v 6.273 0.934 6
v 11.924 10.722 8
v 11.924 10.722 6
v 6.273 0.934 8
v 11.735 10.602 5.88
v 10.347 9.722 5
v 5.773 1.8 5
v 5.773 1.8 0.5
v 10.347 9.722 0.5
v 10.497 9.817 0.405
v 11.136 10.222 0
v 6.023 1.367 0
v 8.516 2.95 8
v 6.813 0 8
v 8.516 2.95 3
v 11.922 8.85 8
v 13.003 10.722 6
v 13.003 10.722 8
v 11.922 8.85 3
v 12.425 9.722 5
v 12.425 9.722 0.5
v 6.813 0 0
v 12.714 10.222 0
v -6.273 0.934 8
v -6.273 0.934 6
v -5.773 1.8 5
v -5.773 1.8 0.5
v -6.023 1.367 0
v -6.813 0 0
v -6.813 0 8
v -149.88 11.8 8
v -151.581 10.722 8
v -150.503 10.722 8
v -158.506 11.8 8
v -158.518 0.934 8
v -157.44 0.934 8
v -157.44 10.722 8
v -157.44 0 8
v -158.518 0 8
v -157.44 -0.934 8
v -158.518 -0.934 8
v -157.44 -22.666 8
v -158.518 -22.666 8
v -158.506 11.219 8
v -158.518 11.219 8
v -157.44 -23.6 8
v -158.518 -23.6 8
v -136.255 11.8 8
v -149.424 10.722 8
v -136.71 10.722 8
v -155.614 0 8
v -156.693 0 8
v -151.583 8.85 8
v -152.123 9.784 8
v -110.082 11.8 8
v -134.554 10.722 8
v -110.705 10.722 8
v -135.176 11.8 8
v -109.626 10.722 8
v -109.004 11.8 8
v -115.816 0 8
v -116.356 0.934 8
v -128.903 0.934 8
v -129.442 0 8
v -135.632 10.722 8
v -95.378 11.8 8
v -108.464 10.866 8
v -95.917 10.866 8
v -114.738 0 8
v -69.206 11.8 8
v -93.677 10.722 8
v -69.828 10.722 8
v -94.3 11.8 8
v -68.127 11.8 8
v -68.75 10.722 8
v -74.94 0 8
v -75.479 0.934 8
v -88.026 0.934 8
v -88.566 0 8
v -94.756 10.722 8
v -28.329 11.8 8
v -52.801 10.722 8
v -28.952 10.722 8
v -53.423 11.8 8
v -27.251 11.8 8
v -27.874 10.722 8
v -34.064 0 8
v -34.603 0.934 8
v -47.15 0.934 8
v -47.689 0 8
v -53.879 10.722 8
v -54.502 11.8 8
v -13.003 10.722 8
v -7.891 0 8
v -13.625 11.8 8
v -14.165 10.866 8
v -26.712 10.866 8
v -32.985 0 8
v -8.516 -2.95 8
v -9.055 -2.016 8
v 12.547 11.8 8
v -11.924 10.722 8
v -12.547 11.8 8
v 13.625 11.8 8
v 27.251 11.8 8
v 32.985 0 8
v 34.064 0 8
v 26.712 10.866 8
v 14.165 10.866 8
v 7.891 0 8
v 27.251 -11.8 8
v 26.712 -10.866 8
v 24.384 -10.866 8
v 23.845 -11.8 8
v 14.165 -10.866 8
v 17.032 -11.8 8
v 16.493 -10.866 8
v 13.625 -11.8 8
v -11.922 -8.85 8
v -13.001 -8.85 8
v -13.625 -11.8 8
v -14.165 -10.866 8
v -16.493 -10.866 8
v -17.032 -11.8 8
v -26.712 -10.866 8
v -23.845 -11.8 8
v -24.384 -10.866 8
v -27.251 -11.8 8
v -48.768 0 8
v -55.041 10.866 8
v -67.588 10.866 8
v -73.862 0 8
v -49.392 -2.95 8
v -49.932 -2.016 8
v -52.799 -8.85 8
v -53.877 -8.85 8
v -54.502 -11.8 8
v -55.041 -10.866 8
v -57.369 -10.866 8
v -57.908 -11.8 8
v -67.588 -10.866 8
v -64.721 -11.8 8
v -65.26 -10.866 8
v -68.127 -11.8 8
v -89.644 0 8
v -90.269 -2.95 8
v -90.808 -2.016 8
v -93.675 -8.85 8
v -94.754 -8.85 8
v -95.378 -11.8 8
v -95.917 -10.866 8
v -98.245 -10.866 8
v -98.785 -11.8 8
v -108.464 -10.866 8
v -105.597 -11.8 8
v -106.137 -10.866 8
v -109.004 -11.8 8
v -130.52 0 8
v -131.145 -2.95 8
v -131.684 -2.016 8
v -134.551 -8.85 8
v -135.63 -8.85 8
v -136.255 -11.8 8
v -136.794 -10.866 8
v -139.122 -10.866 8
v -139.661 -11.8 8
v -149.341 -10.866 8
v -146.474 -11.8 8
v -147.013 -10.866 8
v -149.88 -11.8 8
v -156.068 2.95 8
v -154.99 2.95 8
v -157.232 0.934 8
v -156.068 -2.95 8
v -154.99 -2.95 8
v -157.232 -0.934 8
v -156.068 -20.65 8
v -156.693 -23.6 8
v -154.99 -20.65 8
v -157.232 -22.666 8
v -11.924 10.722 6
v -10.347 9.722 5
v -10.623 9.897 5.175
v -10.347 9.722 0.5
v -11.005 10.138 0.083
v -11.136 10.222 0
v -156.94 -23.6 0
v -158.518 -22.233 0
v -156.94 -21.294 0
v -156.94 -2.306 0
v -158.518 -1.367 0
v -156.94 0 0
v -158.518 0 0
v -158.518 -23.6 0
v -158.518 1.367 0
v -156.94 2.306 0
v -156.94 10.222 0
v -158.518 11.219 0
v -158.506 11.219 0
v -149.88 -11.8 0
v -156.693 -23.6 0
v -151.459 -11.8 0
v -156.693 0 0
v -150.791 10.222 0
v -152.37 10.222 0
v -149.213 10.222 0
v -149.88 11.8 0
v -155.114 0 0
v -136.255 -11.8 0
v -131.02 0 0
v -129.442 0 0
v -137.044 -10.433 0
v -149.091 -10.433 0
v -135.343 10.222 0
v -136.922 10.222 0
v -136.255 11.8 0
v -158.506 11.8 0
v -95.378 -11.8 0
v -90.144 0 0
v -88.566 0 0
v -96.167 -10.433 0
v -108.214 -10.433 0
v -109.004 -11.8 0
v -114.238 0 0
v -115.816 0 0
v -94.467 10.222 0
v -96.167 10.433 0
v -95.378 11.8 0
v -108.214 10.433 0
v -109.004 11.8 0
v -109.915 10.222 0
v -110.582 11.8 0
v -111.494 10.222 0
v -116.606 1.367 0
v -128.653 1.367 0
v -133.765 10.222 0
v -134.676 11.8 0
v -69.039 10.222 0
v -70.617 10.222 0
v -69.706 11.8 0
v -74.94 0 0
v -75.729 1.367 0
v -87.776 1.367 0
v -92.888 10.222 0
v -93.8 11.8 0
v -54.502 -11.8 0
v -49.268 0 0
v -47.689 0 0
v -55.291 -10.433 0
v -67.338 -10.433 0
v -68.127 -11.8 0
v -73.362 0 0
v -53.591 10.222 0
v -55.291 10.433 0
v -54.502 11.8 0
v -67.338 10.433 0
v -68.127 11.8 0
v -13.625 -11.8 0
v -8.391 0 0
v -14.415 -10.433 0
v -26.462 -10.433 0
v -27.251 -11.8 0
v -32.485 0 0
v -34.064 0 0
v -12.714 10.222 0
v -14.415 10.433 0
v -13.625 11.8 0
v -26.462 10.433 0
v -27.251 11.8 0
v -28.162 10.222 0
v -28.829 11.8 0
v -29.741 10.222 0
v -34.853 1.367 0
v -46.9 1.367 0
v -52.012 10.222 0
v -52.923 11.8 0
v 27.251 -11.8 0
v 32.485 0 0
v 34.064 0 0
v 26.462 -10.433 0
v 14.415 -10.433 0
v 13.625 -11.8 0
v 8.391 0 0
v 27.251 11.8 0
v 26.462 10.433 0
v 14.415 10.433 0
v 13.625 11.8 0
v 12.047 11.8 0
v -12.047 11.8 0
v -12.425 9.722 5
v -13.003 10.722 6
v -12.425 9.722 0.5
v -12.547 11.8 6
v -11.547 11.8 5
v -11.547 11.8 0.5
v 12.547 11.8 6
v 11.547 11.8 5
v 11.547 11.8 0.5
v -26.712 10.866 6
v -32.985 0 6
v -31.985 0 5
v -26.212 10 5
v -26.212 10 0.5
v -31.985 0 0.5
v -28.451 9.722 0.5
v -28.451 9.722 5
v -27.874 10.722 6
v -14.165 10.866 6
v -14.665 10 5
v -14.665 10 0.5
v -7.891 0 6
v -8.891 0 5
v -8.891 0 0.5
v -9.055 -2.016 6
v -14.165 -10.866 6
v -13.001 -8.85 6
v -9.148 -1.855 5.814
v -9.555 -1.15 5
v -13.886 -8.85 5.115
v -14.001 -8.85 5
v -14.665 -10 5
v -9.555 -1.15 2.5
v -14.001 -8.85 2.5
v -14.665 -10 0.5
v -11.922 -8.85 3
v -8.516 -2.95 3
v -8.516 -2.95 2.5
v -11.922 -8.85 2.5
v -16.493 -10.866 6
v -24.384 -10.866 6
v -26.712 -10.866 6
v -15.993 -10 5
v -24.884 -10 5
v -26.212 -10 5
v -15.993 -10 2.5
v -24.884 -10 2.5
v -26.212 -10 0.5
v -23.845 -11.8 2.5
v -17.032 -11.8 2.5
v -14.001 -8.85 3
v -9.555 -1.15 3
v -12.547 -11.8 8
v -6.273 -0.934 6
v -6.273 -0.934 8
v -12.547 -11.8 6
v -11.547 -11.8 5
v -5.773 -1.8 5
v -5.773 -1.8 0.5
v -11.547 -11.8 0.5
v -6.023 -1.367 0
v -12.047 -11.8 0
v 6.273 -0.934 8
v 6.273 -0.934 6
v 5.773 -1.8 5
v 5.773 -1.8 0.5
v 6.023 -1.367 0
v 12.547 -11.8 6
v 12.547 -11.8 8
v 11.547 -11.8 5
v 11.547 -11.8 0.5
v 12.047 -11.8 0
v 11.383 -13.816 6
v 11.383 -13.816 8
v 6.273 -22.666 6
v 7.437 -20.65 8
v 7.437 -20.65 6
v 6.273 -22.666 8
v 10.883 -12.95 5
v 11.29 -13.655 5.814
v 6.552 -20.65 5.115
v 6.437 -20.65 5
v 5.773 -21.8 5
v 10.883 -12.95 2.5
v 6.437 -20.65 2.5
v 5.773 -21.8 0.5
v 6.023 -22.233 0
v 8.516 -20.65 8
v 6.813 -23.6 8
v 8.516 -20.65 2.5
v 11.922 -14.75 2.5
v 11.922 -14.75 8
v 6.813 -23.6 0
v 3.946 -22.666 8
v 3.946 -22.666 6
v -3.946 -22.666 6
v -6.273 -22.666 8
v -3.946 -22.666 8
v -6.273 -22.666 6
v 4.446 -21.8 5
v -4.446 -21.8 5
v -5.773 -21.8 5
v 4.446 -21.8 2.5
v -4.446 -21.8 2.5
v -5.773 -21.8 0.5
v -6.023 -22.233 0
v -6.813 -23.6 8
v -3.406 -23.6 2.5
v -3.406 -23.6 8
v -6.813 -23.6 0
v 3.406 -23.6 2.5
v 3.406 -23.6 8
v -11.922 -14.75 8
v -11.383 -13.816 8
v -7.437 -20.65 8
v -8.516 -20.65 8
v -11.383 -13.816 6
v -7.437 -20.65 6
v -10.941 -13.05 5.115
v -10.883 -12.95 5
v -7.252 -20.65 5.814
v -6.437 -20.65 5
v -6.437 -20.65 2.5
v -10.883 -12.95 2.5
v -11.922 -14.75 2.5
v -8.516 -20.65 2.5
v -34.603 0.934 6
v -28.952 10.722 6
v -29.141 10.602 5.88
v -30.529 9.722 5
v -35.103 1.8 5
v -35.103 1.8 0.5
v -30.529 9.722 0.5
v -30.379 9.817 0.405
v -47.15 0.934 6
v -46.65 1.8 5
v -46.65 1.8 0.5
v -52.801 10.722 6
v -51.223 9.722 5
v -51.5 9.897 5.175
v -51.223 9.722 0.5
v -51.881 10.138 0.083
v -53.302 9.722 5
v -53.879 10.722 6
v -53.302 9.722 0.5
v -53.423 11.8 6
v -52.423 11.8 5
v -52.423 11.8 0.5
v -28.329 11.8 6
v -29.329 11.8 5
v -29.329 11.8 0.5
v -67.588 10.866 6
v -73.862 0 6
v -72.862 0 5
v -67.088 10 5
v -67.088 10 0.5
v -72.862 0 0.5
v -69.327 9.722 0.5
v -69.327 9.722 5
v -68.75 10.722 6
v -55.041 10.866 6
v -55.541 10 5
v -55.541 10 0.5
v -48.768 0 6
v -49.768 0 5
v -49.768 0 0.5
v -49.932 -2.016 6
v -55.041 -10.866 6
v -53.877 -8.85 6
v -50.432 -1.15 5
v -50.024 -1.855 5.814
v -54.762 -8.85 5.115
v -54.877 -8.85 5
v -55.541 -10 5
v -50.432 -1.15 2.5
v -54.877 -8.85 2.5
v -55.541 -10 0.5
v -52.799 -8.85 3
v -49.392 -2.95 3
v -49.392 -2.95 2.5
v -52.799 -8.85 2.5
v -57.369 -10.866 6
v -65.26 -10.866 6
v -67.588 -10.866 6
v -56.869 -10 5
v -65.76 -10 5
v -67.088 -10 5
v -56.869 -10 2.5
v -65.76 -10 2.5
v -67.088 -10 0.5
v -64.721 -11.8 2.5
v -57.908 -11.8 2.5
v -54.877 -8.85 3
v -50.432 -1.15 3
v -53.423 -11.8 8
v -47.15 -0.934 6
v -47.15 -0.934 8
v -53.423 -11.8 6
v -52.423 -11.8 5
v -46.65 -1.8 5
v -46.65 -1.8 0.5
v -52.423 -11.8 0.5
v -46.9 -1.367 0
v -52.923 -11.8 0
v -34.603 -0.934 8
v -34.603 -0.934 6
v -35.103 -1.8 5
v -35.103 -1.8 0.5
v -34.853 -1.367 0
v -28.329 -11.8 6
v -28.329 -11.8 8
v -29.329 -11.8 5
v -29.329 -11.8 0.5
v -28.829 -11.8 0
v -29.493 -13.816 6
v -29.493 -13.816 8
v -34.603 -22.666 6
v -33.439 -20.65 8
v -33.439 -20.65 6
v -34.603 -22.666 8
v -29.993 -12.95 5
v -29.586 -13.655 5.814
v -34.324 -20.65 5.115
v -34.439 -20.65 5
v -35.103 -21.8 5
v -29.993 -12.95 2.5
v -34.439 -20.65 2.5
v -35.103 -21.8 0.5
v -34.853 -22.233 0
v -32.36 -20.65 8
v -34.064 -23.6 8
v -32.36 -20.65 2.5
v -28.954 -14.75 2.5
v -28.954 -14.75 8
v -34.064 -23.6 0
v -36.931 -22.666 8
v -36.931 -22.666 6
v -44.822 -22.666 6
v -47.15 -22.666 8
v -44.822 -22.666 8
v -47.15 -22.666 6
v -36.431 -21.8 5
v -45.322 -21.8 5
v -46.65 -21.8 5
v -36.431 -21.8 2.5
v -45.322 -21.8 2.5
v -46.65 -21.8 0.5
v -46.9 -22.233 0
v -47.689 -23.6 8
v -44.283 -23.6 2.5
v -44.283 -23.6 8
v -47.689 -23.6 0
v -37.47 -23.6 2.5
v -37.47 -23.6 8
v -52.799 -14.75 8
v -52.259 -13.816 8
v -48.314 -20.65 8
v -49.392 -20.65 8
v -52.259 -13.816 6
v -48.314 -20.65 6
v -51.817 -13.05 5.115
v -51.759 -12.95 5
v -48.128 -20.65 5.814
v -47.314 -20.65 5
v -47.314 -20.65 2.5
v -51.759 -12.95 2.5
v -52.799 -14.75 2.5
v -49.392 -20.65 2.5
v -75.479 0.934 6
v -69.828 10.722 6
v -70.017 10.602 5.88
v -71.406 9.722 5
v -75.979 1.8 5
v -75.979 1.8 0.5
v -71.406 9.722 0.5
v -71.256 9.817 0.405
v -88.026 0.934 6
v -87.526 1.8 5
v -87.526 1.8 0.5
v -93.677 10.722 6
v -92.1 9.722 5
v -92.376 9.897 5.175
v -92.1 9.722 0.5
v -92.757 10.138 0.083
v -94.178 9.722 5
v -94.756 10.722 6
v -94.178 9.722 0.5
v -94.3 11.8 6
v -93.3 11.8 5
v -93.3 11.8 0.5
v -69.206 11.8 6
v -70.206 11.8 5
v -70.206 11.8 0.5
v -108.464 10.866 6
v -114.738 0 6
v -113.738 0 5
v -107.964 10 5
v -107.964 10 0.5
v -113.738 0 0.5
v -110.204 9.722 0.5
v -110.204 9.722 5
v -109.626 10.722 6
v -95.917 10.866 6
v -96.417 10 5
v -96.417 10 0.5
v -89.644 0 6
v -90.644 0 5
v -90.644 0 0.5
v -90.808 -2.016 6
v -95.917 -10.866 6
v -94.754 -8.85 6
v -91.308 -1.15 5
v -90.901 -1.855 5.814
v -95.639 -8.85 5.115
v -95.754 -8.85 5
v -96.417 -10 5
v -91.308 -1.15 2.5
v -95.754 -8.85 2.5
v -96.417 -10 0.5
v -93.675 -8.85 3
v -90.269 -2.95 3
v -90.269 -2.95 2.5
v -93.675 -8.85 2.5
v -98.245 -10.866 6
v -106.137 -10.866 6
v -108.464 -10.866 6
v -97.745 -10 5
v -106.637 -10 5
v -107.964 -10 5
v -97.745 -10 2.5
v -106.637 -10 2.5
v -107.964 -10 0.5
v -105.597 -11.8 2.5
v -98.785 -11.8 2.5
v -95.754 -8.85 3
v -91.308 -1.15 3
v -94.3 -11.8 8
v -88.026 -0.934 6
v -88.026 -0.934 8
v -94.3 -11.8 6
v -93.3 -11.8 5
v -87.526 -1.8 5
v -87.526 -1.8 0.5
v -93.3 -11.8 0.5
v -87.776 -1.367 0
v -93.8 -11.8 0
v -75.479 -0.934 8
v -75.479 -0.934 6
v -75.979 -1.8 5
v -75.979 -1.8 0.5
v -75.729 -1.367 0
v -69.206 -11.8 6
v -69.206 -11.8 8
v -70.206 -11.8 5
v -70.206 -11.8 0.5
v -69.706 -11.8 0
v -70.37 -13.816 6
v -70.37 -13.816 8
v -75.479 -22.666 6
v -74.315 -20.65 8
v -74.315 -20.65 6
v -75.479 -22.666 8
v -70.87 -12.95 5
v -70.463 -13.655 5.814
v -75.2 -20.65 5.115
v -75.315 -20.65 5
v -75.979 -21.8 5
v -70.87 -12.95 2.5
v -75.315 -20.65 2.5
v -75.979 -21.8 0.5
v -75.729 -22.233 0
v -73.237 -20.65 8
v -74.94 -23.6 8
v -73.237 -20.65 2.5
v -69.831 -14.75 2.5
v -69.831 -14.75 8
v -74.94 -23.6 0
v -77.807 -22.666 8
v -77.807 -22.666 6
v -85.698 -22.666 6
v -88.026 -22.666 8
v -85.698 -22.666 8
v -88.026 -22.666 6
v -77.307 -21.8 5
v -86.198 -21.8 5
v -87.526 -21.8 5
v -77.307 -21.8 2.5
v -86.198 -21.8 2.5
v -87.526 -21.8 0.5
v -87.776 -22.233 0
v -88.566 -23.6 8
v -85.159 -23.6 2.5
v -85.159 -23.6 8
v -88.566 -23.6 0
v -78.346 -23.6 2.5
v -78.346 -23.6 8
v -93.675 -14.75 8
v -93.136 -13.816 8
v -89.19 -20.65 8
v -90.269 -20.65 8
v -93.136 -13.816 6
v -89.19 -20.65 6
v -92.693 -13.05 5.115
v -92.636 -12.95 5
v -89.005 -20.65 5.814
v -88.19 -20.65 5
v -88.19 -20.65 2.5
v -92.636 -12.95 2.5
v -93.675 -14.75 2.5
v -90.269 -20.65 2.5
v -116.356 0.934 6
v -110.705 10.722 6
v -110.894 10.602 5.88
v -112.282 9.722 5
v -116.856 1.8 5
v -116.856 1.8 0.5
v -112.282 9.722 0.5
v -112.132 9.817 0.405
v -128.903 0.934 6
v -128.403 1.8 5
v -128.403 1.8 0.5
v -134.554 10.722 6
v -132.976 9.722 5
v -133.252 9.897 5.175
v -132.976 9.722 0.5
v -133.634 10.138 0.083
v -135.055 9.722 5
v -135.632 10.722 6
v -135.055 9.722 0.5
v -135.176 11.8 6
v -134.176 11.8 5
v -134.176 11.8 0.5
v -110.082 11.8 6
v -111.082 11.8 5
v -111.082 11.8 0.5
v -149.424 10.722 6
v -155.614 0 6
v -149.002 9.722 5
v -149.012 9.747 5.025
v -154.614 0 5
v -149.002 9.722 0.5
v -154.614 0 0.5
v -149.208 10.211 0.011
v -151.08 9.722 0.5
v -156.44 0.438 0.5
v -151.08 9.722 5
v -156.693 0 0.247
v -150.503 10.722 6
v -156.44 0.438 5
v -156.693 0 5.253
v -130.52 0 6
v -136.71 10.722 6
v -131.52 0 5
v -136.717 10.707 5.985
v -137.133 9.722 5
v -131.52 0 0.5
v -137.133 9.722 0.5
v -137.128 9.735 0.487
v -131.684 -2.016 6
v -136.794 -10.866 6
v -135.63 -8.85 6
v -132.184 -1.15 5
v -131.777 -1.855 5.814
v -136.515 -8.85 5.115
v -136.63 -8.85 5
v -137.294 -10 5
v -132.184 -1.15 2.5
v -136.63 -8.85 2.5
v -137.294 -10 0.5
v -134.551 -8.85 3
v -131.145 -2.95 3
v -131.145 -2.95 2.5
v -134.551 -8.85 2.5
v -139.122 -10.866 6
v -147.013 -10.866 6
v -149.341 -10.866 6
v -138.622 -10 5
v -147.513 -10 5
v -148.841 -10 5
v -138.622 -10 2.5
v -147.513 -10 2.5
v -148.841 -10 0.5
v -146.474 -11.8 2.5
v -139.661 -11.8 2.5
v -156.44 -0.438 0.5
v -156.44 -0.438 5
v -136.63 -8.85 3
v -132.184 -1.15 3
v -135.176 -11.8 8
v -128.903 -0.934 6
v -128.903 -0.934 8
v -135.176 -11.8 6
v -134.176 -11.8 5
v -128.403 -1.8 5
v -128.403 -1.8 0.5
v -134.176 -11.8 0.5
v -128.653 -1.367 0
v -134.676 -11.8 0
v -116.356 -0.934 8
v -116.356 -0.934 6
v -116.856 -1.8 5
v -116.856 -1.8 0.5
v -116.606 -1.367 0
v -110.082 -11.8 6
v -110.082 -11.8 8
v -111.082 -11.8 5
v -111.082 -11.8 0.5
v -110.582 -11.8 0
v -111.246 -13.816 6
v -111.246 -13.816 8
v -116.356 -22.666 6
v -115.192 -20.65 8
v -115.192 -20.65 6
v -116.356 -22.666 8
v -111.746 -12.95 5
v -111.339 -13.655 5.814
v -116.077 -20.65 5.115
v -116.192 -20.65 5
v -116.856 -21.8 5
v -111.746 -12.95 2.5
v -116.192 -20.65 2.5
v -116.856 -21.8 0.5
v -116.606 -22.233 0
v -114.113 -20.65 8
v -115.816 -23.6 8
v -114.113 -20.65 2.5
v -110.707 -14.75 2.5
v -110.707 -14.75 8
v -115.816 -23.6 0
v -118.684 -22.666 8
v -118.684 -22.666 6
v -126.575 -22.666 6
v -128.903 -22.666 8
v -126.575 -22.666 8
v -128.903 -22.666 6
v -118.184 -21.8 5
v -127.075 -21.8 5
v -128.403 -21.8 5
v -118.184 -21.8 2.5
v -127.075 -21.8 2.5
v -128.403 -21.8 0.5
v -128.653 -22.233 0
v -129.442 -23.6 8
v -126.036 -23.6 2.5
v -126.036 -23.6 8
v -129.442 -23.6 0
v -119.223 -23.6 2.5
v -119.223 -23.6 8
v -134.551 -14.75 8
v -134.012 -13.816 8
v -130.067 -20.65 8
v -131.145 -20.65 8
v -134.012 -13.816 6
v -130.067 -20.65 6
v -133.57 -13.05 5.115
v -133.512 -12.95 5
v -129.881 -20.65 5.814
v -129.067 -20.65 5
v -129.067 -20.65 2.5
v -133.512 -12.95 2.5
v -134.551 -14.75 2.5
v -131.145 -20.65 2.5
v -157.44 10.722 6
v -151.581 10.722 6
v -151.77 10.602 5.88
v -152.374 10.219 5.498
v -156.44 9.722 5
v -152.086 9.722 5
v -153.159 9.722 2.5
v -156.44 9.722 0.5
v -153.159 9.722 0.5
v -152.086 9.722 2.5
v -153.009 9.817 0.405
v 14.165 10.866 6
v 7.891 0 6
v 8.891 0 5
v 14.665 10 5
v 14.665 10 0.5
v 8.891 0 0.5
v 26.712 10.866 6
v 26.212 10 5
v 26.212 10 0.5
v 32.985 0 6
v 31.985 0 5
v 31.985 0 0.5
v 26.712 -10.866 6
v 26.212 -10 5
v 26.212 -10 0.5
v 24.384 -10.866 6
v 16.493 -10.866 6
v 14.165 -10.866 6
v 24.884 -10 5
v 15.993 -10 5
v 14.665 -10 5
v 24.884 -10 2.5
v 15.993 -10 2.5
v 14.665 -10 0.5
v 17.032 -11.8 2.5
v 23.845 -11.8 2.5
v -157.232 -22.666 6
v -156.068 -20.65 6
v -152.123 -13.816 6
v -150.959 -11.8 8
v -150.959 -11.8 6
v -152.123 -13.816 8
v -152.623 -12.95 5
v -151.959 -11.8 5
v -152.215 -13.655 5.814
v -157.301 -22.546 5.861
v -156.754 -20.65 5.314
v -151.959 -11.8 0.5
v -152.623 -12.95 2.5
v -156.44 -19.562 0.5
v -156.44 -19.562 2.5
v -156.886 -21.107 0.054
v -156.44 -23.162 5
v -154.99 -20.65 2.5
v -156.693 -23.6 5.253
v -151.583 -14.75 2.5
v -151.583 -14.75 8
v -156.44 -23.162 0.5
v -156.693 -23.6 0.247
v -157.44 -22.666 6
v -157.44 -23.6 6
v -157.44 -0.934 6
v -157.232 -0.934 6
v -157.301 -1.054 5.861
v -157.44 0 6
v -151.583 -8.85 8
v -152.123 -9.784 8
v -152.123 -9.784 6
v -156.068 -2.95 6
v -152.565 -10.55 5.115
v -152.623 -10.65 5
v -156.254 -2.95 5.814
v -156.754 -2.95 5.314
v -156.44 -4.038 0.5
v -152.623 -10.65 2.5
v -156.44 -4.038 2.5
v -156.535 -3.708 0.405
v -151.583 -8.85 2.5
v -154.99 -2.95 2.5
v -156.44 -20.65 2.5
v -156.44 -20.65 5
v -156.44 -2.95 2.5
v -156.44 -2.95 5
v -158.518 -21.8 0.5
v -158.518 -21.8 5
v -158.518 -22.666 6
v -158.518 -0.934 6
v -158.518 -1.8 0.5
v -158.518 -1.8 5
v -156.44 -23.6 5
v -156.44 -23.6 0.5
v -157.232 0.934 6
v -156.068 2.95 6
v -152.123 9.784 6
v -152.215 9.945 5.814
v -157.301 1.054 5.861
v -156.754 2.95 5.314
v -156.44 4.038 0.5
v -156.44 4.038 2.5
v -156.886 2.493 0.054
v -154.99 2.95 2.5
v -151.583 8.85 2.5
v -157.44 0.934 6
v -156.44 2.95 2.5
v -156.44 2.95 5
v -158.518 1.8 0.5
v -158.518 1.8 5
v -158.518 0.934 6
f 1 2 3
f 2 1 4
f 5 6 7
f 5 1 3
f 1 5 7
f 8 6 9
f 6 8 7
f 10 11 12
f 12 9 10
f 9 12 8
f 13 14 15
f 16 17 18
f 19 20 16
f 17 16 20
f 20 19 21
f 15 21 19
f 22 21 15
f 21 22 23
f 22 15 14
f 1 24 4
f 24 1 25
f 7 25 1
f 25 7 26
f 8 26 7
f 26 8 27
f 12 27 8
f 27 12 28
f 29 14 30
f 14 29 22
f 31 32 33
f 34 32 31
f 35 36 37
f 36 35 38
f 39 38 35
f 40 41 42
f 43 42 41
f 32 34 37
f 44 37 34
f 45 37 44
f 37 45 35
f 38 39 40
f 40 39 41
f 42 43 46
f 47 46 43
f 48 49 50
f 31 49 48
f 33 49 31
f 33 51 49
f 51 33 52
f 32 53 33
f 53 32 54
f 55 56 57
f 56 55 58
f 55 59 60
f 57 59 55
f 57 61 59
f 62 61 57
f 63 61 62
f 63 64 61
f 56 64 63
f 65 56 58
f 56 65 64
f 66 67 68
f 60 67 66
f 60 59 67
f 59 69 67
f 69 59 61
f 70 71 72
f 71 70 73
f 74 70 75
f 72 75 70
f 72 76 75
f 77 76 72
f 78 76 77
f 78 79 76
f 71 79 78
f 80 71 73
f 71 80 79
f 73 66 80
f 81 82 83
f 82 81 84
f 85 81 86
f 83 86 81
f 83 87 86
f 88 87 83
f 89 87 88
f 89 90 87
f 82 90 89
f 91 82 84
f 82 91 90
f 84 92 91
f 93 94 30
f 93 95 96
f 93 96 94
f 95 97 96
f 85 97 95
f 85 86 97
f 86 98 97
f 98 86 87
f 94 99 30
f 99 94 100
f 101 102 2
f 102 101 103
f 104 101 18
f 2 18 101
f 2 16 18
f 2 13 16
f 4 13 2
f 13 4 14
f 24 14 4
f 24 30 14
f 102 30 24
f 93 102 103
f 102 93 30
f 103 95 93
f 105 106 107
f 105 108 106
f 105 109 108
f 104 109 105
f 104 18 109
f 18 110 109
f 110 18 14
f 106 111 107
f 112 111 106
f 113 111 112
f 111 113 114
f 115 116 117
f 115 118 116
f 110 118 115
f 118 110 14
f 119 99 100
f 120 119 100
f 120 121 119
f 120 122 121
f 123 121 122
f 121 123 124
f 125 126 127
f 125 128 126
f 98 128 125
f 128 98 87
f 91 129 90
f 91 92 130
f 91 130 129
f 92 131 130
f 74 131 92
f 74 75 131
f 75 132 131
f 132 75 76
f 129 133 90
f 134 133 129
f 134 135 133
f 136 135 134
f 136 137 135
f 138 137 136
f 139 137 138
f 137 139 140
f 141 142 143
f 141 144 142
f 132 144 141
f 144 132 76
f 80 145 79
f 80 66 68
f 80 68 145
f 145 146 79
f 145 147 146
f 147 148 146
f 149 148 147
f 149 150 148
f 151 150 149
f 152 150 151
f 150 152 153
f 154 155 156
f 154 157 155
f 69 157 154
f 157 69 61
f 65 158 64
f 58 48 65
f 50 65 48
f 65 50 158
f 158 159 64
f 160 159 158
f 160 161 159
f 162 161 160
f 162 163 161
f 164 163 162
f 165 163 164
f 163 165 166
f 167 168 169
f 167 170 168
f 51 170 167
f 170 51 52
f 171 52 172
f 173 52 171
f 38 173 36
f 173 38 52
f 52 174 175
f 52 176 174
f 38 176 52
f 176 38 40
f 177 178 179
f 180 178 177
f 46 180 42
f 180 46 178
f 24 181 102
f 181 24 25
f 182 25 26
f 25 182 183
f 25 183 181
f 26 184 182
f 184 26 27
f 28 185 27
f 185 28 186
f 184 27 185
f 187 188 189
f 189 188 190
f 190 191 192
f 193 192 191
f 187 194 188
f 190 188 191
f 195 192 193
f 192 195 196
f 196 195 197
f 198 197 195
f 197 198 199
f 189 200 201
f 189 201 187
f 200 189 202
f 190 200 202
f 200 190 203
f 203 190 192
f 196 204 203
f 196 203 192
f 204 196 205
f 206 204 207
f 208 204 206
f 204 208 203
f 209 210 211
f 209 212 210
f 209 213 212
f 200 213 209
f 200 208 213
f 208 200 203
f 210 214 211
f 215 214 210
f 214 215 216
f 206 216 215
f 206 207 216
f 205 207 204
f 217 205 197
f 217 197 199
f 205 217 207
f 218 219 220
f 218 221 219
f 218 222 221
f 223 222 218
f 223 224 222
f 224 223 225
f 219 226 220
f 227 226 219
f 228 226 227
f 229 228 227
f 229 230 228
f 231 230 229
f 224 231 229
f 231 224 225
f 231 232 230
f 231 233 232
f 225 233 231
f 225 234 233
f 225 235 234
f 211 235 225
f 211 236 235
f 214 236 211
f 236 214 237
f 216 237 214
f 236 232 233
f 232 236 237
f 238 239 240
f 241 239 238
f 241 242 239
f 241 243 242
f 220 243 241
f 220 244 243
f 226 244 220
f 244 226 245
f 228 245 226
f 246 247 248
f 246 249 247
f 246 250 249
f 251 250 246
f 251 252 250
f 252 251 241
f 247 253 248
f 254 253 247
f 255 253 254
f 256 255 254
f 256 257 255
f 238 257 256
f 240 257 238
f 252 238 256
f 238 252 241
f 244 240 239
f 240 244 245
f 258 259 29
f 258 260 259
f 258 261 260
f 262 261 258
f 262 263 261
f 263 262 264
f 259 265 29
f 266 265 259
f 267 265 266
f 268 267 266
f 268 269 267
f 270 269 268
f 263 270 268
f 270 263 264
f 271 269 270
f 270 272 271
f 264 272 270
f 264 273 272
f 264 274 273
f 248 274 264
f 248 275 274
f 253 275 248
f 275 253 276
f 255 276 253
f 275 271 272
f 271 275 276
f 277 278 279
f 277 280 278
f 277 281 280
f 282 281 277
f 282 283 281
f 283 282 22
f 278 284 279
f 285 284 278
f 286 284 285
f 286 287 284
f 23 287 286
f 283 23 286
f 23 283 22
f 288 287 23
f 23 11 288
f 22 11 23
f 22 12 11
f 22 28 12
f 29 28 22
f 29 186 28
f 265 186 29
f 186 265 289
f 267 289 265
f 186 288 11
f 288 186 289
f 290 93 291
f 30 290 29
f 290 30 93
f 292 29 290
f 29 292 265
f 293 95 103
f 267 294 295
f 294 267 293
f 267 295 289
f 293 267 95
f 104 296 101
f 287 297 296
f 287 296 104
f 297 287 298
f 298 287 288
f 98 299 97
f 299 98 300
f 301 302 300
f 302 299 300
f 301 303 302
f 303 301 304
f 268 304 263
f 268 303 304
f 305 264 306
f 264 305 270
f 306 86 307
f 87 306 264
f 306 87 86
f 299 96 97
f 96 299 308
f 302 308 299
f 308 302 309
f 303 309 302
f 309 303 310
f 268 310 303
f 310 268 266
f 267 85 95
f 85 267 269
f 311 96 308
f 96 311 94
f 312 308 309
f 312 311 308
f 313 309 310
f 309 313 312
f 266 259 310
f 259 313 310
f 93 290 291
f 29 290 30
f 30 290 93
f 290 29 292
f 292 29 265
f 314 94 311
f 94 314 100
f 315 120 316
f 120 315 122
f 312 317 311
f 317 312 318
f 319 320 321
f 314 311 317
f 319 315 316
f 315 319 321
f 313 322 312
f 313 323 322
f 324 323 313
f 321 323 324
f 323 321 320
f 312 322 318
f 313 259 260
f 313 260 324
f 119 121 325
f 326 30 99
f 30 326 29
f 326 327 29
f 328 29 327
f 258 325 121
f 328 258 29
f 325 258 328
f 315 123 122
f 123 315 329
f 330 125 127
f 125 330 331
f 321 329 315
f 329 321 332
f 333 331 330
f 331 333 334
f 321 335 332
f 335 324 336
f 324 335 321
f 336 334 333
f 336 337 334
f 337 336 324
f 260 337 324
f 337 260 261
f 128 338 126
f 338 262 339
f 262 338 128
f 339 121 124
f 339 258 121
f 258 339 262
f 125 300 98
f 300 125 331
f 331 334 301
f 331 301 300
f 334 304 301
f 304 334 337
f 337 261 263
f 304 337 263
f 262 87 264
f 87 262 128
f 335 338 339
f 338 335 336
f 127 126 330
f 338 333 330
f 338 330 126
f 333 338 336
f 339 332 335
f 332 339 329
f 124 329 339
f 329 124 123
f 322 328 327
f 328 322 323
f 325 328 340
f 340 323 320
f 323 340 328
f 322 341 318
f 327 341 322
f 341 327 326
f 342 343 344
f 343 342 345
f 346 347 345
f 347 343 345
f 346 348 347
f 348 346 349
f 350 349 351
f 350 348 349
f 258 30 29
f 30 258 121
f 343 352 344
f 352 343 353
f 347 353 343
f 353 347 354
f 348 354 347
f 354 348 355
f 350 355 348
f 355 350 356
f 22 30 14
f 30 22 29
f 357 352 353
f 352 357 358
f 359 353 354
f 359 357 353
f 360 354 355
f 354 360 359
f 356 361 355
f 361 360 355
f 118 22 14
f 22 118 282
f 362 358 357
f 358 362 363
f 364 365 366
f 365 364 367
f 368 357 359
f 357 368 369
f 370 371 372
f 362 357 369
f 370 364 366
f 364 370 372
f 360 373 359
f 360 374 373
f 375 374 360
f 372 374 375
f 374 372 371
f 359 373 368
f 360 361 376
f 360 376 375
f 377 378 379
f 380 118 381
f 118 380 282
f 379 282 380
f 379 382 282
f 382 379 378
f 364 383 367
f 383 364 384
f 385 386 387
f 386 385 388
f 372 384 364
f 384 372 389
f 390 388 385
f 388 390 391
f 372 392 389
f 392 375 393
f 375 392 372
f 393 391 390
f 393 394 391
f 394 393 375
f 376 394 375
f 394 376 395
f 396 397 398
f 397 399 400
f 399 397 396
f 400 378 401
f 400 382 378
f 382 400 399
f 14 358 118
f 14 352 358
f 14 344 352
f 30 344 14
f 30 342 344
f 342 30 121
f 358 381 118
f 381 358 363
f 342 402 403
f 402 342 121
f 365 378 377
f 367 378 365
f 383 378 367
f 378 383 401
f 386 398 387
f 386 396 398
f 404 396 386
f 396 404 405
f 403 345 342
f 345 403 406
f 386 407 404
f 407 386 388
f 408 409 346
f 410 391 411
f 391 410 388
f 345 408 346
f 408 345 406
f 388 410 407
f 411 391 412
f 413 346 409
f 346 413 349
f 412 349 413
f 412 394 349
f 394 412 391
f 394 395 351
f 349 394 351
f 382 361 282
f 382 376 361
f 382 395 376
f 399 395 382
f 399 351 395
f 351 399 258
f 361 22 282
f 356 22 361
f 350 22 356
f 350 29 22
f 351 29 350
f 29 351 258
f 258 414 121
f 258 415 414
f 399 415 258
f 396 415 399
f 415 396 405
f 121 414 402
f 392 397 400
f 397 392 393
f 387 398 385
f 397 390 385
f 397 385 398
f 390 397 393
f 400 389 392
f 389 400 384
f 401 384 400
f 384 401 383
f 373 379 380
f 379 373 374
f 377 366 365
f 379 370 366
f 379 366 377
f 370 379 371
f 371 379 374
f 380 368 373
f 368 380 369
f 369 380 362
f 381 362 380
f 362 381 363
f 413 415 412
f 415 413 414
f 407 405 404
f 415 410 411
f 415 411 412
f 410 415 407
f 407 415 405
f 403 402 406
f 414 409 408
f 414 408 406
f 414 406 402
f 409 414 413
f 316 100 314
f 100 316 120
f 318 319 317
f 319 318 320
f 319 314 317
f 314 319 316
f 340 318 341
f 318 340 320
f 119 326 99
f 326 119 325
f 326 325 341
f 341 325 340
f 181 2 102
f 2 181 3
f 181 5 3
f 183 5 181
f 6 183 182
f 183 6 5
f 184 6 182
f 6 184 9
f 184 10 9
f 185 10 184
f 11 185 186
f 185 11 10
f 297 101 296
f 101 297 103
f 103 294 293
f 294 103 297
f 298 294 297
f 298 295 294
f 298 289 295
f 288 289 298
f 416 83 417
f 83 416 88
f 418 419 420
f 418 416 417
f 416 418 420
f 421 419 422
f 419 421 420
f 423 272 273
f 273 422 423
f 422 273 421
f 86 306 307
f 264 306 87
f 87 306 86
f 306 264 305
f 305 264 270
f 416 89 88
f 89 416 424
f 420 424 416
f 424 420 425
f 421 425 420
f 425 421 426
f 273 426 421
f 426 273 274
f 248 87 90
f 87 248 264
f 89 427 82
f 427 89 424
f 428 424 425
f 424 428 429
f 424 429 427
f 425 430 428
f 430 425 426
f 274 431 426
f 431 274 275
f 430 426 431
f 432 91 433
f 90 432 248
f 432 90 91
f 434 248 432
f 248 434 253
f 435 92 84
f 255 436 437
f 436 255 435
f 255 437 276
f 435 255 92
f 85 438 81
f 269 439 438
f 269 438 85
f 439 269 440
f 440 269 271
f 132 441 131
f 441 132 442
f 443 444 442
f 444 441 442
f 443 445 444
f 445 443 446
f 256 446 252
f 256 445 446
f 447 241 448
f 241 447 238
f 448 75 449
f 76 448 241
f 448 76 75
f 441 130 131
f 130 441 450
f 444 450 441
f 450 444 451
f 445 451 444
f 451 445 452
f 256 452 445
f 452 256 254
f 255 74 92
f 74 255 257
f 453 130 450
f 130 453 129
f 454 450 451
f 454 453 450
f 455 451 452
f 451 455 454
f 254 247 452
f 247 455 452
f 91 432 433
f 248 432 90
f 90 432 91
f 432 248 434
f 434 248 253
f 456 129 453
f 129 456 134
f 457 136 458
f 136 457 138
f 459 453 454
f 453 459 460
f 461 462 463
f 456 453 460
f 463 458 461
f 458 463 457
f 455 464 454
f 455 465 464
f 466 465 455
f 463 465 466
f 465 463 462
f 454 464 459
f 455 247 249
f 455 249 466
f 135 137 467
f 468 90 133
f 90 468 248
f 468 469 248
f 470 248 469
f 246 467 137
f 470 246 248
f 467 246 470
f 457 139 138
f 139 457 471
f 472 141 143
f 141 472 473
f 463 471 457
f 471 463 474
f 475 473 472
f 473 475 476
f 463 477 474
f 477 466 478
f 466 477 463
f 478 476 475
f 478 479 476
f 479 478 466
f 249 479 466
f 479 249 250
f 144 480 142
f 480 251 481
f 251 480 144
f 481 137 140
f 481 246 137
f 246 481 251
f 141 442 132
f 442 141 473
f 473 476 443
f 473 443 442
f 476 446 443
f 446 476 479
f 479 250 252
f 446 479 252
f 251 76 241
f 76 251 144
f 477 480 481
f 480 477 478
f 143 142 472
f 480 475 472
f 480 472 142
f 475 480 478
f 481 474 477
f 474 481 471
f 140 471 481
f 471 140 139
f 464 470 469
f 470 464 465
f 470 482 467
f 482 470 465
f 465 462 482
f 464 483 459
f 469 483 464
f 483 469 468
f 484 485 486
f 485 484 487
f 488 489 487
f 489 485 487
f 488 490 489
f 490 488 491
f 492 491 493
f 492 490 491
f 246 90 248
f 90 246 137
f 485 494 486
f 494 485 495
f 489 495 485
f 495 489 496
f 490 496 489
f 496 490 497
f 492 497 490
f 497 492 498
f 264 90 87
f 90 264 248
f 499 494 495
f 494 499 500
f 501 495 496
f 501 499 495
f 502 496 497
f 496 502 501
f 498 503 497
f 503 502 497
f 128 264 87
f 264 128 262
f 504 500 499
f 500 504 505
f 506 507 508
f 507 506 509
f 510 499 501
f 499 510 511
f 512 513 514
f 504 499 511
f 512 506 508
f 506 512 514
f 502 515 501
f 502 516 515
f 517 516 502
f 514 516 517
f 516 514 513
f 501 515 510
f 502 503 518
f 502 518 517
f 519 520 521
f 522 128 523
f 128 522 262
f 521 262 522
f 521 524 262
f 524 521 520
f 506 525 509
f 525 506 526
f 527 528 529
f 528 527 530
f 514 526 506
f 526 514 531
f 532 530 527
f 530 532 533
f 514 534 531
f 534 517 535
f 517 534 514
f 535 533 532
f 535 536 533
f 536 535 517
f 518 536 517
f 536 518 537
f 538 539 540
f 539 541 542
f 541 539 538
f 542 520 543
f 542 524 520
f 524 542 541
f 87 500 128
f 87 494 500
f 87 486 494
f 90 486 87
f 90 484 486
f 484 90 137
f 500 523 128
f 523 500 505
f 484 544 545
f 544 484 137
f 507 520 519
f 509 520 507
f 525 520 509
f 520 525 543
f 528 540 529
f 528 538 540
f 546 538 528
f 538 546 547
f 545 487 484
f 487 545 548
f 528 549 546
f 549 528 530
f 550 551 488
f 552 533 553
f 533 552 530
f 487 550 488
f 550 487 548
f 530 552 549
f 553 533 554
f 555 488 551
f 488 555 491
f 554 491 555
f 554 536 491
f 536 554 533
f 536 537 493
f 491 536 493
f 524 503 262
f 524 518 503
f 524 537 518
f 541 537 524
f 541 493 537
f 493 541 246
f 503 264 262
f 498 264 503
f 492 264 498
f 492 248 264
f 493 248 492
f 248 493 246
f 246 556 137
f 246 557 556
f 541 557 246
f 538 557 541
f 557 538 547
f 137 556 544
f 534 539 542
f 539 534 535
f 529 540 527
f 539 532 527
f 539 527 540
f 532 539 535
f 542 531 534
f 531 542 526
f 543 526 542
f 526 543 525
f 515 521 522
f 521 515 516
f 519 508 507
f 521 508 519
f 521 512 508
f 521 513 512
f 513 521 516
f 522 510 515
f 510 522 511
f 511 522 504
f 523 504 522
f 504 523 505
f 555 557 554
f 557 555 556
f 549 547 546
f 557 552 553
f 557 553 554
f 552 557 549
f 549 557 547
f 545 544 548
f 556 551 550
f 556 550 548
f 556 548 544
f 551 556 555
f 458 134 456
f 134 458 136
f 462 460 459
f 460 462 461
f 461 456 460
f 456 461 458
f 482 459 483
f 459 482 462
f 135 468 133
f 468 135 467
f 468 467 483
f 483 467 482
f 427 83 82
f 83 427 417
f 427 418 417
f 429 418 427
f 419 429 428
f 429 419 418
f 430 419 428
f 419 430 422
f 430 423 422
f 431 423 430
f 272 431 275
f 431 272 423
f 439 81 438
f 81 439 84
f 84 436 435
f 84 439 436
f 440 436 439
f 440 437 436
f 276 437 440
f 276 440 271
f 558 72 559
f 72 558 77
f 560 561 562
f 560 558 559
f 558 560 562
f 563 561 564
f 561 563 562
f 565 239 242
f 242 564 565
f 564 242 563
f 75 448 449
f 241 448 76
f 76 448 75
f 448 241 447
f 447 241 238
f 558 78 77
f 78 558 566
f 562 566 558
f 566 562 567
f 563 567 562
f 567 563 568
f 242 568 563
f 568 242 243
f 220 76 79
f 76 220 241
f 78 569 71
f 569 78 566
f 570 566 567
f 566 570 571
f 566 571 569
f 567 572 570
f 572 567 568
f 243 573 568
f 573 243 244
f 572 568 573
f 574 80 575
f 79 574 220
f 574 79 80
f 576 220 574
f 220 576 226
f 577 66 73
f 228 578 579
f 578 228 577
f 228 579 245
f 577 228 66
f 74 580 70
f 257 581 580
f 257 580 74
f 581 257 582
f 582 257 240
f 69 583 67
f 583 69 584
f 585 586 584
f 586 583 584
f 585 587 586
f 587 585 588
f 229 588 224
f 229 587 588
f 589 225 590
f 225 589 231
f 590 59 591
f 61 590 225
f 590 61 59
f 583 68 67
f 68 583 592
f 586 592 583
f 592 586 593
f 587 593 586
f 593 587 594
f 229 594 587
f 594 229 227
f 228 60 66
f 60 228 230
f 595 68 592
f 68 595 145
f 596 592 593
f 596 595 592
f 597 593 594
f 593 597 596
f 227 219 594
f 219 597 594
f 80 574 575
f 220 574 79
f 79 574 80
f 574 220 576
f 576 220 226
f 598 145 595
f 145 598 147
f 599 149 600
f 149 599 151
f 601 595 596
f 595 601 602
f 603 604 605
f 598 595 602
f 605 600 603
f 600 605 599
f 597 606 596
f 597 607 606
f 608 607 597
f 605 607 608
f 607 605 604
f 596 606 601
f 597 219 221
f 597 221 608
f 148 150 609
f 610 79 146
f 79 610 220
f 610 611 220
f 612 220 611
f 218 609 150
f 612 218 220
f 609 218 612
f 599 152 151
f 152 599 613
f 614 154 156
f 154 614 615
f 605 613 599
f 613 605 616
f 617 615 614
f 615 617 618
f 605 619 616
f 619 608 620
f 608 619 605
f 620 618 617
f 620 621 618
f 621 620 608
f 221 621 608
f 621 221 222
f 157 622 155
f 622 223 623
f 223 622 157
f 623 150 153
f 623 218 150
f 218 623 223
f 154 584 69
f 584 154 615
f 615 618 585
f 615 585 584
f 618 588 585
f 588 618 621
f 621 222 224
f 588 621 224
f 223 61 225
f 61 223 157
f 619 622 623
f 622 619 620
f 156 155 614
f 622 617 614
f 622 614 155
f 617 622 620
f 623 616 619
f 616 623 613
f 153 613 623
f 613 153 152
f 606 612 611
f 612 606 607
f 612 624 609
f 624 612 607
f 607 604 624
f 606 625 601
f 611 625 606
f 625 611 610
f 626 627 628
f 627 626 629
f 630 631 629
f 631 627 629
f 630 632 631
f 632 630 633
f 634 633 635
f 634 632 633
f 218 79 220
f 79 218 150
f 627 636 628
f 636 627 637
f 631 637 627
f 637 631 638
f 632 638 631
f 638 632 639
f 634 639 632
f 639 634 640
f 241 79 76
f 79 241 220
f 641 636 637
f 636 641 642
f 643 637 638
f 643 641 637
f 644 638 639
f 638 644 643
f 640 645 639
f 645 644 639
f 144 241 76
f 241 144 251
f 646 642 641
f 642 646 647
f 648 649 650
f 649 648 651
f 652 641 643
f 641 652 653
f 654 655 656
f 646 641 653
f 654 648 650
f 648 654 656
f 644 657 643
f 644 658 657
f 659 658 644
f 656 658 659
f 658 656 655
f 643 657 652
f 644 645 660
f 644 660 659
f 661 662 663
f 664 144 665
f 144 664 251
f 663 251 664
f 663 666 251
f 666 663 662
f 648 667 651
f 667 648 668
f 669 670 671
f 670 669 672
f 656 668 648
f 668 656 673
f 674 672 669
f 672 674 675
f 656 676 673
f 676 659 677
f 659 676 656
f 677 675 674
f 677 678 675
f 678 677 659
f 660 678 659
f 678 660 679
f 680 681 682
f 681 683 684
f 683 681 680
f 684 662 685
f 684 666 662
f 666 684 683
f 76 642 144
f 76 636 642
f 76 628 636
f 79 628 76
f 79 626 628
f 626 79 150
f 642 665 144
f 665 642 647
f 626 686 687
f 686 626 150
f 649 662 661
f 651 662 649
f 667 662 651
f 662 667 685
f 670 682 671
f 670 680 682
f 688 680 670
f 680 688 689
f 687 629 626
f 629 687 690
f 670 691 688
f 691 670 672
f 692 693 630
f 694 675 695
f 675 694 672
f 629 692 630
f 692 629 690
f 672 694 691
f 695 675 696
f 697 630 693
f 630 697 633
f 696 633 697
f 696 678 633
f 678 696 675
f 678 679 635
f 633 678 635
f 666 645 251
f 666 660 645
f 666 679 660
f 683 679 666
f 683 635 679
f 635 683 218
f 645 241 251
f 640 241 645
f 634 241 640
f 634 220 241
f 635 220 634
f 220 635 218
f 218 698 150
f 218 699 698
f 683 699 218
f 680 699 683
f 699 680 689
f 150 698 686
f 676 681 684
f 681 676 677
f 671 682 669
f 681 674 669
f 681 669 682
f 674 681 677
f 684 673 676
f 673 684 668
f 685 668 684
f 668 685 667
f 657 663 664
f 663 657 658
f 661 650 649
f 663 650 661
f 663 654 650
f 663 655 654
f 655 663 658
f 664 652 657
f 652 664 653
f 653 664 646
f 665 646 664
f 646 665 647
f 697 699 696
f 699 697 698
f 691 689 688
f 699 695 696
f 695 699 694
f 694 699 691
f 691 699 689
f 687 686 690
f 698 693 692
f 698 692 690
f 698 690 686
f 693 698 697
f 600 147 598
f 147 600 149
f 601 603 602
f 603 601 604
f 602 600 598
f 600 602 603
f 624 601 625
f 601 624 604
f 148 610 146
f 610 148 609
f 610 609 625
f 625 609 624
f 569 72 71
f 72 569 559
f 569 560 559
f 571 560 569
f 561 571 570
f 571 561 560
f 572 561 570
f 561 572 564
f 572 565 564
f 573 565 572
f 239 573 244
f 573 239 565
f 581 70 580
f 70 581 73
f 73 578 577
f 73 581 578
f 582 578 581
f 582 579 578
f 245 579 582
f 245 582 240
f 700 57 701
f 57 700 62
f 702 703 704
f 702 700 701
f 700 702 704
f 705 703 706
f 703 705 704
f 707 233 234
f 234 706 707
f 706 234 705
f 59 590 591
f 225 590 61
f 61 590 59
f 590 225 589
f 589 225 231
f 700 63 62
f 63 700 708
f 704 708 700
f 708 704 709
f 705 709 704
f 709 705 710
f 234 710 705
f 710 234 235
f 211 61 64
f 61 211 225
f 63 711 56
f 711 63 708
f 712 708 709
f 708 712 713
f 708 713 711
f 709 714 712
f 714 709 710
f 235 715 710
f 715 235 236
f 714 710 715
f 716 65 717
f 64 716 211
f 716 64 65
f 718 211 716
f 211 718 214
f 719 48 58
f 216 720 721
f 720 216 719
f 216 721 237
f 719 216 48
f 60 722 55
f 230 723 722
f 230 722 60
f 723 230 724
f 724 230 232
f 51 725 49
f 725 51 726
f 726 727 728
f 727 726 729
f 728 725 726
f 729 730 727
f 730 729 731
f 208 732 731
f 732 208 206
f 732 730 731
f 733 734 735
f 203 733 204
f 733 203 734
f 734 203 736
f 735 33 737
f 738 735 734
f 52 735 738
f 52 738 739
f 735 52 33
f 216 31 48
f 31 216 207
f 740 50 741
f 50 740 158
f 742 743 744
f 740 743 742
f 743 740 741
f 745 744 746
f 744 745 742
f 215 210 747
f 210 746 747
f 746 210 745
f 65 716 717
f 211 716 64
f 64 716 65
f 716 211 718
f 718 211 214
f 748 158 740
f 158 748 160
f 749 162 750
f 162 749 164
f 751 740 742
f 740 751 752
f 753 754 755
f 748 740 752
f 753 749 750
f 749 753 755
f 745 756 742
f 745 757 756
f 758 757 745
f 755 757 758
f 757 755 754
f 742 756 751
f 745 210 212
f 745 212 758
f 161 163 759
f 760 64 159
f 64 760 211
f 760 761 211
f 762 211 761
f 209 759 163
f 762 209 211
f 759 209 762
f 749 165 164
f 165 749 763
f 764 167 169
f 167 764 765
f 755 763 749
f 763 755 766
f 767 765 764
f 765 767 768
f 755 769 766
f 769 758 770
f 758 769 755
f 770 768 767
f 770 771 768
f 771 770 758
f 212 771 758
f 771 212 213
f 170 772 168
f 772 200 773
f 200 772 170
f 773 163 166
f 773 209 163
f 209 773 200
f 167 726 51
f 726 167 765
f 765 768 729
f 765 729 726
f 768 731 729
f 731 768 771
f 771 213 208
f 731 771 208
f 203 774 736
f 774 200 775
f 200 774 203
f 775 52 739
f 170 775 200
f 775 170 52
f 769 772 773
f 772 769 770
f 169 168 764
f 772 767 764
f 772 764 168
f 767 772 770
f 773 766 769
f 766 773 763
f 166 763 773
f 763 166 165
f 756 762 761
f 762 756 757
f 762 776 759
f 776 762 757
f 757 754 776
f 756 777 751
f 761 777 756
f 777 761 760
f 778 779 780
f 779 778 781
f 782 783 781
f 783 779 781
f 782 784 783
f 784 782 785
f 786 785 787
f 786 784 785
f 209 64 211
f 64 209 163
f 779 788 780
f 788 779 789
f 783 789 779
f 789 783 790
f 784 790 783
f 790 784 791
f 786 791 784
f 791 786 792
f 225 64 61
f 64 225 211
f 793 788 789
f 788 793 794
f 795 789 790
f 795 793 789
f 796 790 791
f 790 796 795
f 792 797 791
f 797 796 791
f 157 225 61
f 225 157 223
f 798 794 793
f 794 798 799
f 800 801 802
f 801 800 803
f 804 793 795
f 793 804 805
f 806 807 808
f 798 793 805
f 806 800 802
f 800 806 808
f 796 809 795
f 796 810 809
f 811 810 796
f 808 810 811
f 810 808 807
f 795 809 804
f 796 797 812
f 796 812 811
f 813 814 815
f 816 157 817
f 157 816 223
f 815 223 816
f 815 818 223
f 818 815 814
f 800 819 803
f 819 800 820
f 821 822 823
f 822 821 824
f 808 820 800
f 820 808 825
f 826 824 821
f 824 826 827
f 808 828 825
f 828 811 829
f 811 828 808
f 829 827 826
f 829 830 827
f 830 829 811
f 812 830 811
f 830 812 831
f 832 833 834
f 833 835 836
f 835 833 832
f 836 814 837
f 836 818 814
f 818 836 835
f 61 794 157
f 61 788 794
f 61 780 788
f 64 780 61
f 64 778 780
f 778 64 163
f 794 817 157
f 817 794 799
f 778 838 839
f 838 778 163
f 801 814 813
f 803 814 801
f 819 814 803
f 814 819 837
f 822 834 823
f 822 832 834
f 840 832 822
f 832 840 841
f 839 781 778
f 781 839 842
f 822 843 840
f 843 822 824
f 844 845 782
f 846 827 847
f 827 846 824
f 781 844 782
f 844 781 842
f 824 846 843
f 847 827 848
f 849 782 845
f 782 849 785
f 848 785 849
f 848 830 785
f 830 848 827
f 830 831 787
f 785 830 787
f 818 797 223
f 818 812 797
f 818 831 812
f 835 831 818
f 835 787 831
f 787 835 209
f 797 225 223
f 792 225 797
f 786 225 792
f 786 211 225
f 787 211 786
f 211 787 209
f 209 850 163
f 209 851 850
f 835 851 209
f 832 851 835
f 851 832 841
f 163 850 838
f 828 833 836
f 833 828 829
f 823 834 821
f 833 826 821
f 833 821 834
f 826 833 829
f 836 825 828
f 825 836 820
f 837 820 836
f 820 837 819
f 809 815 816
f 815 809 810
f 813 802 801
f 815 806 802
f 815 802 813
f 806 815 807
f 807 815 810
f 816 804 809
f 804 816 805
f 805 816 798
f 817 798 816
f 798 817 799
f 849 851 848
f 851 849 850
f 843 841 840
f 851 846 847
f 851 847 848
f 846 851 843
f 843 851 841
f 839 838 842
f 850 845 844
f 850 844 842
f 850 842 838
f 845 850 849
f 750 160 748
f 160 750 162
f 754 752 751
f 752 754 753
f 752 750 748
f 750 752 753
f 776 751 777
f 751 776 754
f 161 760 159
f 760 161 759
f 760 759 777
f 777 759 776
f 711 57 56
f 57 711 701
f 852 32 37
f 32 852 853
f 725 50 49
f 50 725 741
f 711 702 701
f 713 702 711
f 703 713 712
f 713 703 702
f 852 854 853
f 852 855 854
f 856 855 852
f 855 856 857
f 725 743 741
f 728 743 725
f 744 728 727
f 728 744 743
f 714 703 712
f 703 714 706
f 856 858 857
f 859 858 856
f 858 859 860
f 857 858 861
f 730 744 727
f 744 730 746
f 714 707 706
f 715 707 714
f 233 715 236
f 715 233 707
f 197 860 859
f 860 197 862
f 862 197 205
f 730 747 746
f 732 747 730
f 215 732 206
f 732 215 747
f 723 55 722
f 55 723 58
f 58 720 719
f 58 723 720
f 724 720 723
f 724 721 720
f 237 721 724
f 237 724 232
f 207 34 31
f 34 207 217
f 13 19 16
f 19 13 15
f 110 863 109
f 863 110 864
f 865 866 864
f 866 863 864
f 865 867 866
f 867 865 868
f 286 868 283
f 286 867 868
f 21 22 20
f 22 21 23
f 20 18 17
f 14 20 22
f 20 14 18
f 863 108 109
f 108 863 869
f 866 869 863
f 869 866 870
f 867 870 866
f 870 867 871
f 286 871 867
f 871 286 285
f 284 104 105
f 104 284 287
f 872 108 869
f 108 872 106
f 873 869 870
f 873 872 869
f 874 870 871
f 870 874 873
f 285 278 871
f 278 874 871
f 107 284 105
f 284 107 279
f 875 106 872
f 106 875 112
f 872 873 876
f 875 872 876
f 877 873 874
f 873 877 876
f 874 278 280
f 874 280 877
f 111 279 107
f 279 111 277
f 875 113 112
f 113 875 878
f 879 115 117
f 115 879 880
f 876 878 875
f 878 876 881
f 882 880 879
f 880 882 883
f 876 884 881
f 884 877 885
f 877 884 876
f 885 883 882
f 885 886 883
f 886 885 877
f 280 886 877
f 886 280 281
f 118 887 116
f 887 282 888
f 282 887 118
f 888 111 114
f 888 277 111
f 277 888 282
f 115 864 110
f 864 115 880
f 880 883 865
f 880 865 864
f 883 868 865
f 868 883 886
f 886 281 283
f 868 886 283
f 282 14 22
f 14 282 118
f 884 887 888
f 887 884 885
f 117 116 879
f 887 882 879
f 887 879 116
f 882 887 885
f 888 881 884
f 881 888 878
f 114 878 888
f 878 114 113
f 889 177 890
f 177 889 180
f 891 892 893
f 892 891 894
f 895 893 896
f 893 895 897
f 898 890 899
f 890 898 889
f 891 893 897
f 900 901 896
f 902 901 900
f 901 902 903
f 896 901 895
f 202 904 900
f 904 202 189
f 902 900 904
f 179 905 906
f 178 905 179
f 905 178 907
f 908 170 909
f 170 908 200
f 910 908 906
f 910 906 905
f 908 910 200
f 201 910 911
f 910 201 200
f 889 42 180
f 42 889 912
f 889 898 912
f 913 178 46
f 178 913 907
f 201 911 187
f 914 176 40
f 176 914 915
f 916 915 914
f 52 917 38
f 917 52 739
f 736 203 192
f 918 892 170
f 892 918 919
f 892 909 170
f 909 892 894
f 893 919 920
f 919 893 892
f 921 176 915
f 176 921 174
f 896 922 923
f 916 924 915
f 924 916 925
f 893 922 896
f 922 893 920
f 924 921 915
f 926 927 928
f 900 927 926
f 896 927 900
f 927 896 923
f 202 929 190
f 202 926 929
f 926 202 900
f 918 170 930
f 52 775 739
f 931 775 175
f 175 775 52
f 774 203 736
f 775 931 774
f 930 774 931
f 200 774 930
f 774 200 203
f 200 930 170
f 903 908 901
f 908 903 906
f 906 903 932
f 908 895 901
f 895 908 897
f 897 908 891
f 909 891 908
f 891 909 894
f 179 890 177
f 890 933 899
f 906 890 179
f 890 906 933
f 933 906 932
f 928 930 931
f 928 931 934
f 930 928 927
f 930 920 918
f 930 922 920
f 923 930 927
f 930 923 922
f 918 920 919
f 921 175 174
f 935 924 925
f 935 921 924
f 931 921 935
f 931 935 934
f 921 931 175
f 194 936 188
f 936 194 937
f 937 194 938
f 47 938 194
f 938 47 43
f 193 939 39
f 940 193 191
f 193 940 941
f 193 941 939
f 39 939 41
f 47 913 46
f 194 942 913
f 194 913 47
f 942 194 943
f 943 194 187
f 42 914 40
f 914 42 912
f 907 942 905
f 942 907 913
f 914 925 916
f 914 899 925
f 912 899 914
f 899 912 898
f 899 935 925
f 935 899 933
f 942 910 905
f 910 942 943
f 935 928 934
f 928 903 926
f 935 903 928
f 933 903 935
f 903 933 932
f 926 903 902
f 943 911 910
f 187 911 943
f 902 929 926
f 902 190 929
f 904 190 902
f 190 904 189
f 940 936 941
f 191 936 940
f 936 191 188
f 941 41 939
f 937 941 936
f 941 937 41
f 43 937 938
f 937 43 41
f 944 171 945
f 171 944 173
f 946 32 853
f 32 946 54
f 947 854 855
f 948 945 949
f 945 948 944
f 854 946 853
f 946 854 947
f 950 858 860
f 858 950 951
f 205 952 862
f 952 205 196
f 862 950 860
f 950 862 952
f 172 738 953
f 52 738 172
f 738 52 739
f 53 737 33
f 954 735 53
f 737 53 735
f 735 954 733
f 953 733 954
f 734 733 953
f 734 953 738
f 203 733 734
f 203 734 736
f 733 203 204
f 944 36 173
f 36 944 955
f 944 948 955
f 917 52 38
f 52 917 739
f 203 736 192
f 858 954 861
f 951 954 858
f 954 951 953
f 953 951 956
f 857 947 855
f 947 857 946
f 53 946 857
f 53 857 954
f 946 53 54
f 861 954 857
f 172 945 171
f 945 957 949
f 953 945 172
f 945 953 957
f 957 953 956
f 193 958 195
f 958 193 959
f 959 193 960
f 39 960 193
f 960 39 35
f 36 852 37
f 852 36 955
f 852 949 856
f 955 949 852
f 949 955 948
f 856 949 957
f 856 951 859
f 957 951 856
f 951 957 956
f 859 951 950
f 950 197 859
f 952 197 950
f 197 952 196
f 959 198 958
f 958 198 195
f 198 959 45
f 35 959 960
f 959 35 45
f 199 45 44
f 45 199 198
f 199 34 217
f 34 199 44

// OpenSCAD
// file: honeycomb_element.scad
$fn = 50;

radius = 13.6;
diameter = radius * 2;

h_inner = 10;
r_inner = h_inner * 2 / sqrt(3);

h_outer = 10 + 1.8;
r_outer = h_outer * 2 / sqrt(3);

h_thin = 10 + 1;
r_thin = h_thin * 2 / sqrt(3);

total_height = 8;

small_value = 0.1;

clips_height = 5;
clips_offset = 0.5;
clips_side_offset = 0.00;

module basic_polygon() {
  polygon(
    [
      [r_outer, total_height],
      [r_outer, 0],
      [r_inner + 0.5, 0],
      [r_inner, 0.5],
      [r_inner, total_height - 3],
      [r_inner + 1, total_height - 2],
      [r_inner + 1, total_height],
    ]
  );
}

module basic_model() {
  rotate_extrude($fn=6) {
    basic_polygon();
  }
}

module panel_with_clips(pin_1 = false, pin_2 = false, pin_3 = false, pin_4 = false, pin_5 = false, pin_6 = false, slot_1 = false, slot_2 = false, slot_3 = false, slot_4 = false, slot_5 = false, slot_6 = false) {

  difference() {
    basic_model();

    if (slot_1) {
      rotate([0, 0, 0])
        translate([0, -h_outer * 2, total_height - (clips_height + clips_offset) / 2])
          linear_extrude(height=clips_height + clips_offset, center=true)
            polygon([[clips_side_offset, h_outer / 2], [-clips_side_offset, h_outer / 2], [-r_outer / 2 - clips_side_offset, h_outer * 1.5], [r_outer / 2 + clips_side_offset, h_outer * 1.5]]);
    }

    if (slot_2) {
      rotate([0, 0, 60])
        translate([0, -h_outer * 2, total_height - (clips_height + clips_offset) / 2])
          linear_extrude(height=clips_height + clips_offset, center=true)
            polygon([[clips_side_offset, h_outer / 2], [-clips_side_offset, h_outer / 2], [-r_outer / 2 - clips_side_offset, h_outer * 1.5], [r_outer / 2 + clips_side_offset, h_outer * 1.5]]);
    }

    if (slot_3) {
      rotate([0, 0, 120])
        translate([0, -h_outer * 2, total_height - (clips_height + clips_offset) / 2])
          linear_extrude(height=clips_height + clips_offset, center=true)
            polygon([[clips_side_offset, h_outer / 2], [-clips_side_offset, h_outer / 2], [-r_outer / 2 - clips_side_offset, h_outer * 1.5], [r_outer / 2 + clips_side_offset, h_outer * 1.5]]);
    }

    if (slot_4) {
      rotate([0, 0, 180])
        translate([0, -h_outer * 2, total_height - (clips_height + clips_offset) / 2])
          linear_extrude(height=clips_height + clips_offset, center=true)
            polygon([[clips_side_offset, h_outer / 2], [-clips_side_offset, h_outer / 2], [-r_outer / 2 - clips_side_offset, h_outer * 1.5], [r_outer / 2 + clips_side_offset, h_outer * 1.5]]);
    }

    if (slot_5) {
      rotate([0, 0, 240])
        translate([0, -h_outer * 2, total_height - (clips_height + clips_offset) / 2])
          linear_extrude(height=clips_height + clips_offset, center=true)
            polygon([[clips_side_offset, h_outer / 2], [-clips_side_offset, h_outer / 2], [-r_outer / 2 - clips_side_offset, h_outer * 1.5], [r_outer / 2 + clips_side_offset, h_outer * 1.5]]);
    }

    if (slot_6) {
      rotate([0, 0, 300])
        translate([0, -h_outer * 2, total_height - (clips_height + clips_offset) / 2])
          linear_extrude(height=clips_height + clips_offset, center=true)
            polygon([[clips_side_offset, h_outer / 2], [-clips_side_offset, h_outer / 2], [-r_outer / 2 - clips_side_offset, h_outer * 1.5], [r_outer / 2 + clips_side_offset, h_outer * 1.5]]);
    }
  }

  if (pin_1) {
    intersection() {
      translate([0, -h_outer * 2, 0])
        basic_model();
      translate([0, 0, total_height - clips_height / 2]) {
        rotate([0, 0, -180])
          linear_extrude(height=clips_height, center=true)
            polygon([[0, h_outer / 2], [-r_outer / 2, h_outer * 1.5], [r_outer / 2, h_outer * 1.5]]);
      }
    }
  }

  if (pin_2) {
    intersection() {
      translate([r_outer * 1.5, -h_outer, 0])
        basic_model();
      translate([0, 0, total_height - clips_height / 2]) {
        rotate([0, 0, -120])
          linear_extrude(height=clips_height, center=true)
            polygon([[0, h_outer / 2], [-r_outer / 2, h_outer * 1.5], [r_outer / 2, h_outer * 1.5]]);
      }
    }
  }

  if (pin_3) {
    intersection() {
      translate([r_outer * 1.5, h_outer, 0])
        basic_model();
      translate([0, 0, total_height - clips_height / 2]) {
        rotate([0, 0, -60])
          linear_extrude(height=clips_height, center=true)
            polygon([[0, h_outer / 2], [-r_outer / 2, h_outer * 1.5], [r_outer / 2, h_outer * 1.5]]);
      }
    }
  }

  if (pin_4) {
    intersection() {
      translate([0, h_outer * 2, 0])
        basic_model();

      translate([0, 0, total_height - clips_height / 2]) {
        linear_extrude(height=clips_height, center=true)
          polygon([[0, h_outer / 2], [-r_outer / 2, h_outer * 1.5], [r_outer / 2, h_outer * 1.5]]);
      }
    }
  }

  if (pin_5) {
    intersection() {
      translate([-r_outer * 1.5, h_outer, 0])
        basic_model();
      translate([0, 0, total_height - clips_height / 2]) {
        rotate([0, 0, 60])
          linear_extrude(height=clips_height, center=true)
            polygon([[0, h_outer / 2], [-r_outer / 2, h_outer * 1.5], [r_outer / 2, h_outer * 1.5]]);
      }
    }
  }

  if (pin_6) {
    intersection() {
      translate([-r_outer * 1.5, -h_outer, 0])
        basic_model();

      translate([0, 0, total_height - clips_height / 2]) {
        rotate([0, 0, 120])
          linear_extrude(height=clips_height, center=true)
            polygon([[0, h_outer / 2], [-r_outer / 2, h_outer * 1.5], [r_outer / 2, h_outer * 1.5]]);
      }
    }
  }
}

// end honeycomb_element.scad
// main file
$fn = 50;

h_outer = 10+1.8;
r_outer = h_outer * 2/sqrt(3);

use <honeycomb_element.scad>; 

module perimeter_top_item(left_slot=false,top_slot=false) {
  difference() {
    translate([0, h_outer, 0])
        panel_with_clips(slot_1=top_slot, slot_2=left_slot);  
    
    translate([0, 50+h_outer, 0])
        cube([100, 100, 100], center = true);
  }
  
  translate([-r_outer*1.5, 0, 0])
     panel_with_clips(slot_1=true, slot_2=true,  pin_5=false); 
  
  
  translate([0, -h_outer, 0])
     panel_with_clips(slot_1=true, slot_2=true, slot_6=true, pin_5=true);   
  
    
  translate([0, h_outer-r_outer, 0])
      rotate([90, 0, 90])
        linear_extrude(height = r_outer * 2, center=true)
        basic_polygon();
    
}

module perimeter_right_item(slot_5=true, slot_6=true) {
  difference() {
      translate([r_outer * 1.5, 0, 0])
        panel_with_clips(slot_6=slot_6, slot_5=slot_5);
      translate([50+r_outer * 1.5-r_outer/2 + (r_outer-h_outer), 0, 0])
        cube([100, 100, 100], center = true);
  }
  translate([0 + r_outer-h_outer, 0, 0])
    rotate([90, 0, 0])
      linear_extrude(height = h_outer * 2, center=true)
        basic_polygon();
}


module perimeter_bottom() {
    perimeter_top_item();
    
    translate([-3*r_outer, 0, 0])
      perimeter_top_item();

    translate([-6*r_outer, 0, 0])
      perimeter_top_item();    
    
    translate([-9*r_outer, 0, 0])
      perimeter_top_item();    
    
    translate([1.5*r_outer, 0, 0])
      panel_with_clips(slot_1=true,  pin_5=true); 
    
    
    translate([-10.5*r_outer, -h_outer, 0])
        rotate([0, 0, 180])
          perimeter_right_item();
    
    
    
    difference() {
      translate([-10.5*r_outer, h_outer, 0])
        rotate([0, 0, 180])
          perimeter_right_item();
        
    
      translate([-11*r_outer, 1.5*r_outer+1, 0])
        cube([1.5*r_outer, 1.5*r_outer, 1.5*r_outer], center=true);
    }
    
    
    translate([-11.0*r_outer+5, h_outer-r_outer, 0])
      rotate([90, 0, 90])
        linear_extrude(height = r_outer * 2, center=true)
          basic_polygon();
    
}

perimeter_bottom();
